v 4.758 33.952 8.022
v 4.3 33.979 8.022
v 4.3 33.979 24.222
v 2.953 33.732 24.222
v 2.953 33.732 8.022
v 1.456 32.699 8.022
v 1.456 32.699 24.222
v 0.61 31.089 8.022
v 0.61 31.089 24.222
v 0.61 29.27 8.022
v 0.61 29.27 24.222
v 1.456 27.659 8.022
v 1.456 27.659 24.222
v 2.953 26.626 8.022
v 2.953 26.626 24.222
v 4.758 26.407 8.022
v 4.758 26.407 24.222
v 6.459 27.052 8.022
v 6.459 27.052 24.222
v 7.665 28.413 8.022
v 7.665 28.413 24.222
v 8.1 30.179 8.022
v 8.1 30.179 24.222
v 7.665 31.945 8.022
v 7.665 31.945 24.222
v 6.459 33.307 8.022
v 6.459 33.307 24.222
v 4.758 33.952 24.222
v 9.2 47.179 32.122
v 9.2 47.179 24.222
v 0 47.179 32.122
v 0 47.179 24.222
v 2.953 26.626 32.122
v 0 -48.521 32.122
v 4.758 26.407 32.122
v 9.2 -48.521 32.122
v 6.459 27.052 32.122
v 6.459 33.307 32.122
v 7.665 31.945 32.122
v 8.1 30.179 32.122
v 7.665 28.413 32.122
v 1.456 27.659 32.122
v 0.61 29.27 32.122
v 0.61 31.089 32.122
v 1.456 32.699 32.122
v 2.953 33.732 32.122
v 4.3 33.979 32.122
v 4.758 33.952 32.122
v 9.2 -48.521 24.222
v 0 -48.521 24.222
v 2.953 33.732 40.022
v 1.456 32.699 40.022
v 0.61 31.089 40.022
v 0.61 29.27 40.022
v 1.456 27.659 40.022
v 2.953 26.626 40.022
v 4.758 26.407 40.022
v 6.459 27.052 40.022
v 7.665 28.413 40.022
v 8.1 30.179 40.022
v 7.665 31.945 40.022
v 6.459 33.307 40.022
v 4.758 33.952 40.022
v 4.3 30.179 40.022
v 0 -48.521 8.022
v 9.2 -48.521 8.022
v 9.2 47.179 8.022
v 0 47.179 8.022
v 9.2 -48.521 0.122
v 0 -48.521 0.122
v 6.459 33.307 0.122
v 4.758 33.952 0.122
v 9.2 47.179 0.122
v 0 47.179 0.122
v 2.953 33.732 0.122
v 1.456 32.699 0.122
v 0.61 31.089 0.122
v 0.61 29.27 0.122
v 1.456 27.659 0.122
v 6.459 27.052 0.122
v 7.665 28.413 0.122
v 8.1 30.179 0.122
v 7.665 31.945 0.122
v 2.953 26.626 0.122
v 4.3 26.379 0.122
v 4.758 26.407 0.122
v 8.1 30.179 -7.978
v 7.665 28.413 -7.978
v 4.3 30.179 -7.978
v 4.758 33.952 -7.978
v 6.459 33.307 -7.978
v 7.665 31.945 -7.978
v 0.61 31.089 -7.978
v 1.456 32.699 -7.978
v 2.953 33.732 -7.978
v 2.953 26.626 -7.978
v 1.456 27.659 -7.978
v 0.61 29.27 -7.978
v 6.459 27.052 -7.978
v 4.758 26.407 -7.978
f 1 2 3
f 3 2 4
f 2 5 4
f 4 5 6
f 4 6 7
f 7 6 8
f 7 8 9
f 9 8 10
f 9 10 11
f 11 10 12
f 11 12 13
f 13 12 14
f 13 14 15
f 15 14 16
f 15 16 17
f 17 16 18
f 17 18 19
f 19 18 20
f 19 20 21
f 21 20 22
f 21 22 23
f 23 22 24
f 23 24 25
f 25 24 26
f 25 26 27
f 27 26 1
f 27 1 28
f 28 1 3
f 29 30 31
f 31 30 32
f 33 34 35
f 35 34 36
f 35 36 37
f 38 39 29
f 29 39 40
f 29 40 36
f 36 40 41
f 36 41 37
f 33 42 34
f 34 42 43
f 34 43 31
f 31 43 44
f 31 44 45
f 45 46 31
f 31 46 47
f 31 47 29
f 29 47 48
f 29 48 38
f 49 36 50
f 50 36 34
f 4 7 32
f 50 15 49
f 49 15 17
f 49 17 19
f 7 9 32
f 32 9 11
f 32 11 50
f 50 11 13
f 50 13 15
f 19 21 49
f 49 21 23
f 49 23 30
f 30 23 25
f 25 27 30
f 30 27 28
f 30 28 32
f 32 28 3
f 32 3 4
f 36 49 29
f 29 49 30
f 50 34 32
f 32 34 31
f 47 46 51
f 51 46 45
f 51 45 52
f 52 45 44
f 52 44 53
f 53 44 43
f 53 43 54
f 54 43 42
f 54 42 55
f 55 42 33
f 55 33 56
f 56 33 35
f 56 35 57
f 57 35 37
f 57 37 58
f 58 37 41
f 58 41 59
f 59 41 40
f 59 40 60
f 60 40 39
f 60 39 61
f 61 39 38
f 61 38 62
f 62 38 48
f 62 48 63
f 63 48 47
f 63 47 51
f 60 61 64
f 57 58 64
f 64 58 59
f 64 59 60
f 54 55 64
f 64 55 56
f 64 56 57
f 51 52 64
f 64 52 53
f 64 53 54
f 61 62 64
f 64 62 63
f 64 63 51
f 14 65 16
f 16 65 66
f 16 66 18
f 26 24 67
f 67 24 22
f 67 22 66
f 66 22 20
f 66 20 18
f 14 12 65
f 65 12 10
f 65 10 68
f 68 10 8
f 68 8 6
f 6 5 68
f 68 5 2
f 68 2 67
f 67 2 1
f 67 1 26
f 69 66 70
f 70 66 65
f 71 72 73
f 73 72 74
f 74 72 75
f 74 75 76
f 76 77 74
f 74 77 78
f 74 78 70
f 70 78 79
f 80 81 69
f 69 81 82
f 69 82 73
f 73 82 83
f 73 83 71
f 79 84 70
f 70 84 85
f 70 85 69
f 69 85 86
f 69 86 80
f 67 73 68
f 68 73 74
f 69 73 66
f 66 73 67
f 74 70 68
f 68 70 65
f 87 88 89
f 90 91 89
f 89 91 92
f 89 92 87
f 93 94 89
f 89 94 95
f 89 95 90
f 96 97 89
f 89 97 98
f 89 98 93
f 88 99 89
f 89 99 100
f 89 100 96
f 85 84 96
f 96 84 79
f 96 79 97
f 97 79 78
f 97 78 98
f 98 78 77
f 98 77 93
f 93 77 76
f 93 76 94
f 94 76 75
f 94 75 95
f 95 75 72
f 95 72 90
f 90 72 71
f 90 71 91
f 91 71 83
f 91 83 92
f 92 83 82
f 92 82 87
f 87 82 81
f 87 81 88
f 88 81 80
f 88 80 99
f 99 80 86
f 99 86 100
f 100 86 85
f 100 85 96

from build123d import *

# Parameters (mm, degrees)
SKETCH1_W                = 7.9
SKETCH1_H                = 95.7
BOSS_EXTRUDE1_DEPTH      = 9.2
SKETCH1_3_W              = 7.9
SKETCH1_3_H              = 95.7
BOSS_EXTRUDE2_DEPTH      = 9.2
BOSS_EXTRUDE3_DEPTH      = 32
BOSS_EXTRUDE3_DEPTH_BACK = 16
SKETCH2_R                = 3.8


with BuildPart() as part:
    # Sketch1 → Boss-Extrude1 (new body)
    with BuildSketch(Plane(origin=(0, 0, 0), x_dir=(0, 0, -1), z_dir=(1, 0, 0))):
        with Locations((-28.171698113, -0.670754717)):
            Rectangle(SKETCH1_W, SKETCH1_H)
    extrude(amount=BOSS_EXTRUDE1_DEPTH)

    # Sketch1<3> → Boss-Extrude2 (add)
    with BuildSketch(Plane(origin=(0, 0, 0), x_dir=(0, 0, -1), z_dir=(1, 0, 0))):
        with Locations((-28.171698113, -0.670754717)):
            Rectangle(SKETCH1_3_W, SKETCH1_3_H)
        with Locations((-4.071698113, -0.670754717)):
            Rectangle(SKETCH1_3_W, SKETCH1_3_H)
    extrude(amount=BOSS_EXTRUDE2_DEPTH)


with BuildPart() as boss_extrude2_piece_1:
    # of the separate pieces the step leaves, piece 1, a body of its own (boss_extrude2_pieces)
    add(part.part.solids().sort_by_distance((0, 47.179245283, 8.021698113))[0])



with BuildPart() as boss_extrude2_piece_2:
    # of the separate pieces the step leaves, piece 2, a body of its own (boss_extrude2_pieces)
    add(part.part.solids().sort_by_distance((0, 47.179245283, 32.121698113))[0])


with BuildPart() as boss_extrude2_piece_1_1:
    add(boss_extrude2_piece_1.part)

    add(boss_extrude2_piece_2.part)  # Boss-Extrude3 merges Boss-Extrude2 piece 2
    # Sketch2 → Boss-Extrude3 (add, two sides: drawn at the far end of the back side and taken through both)
    with BuildSketch(Plane.XY.offset(8.021698113).offset(-BOSS_EXTRUDE3_DEPTH_BACK)):
        with Locations((4.3, 30.179245283)):
            Circle(SKETCH2_R)
    extrude(amount=BOSS_EXTRUDE3_DEPTH + BOSS_EXTRUDE3_DEPTH_BACK)


solid = boss_extrude2_piece_1_1.part
